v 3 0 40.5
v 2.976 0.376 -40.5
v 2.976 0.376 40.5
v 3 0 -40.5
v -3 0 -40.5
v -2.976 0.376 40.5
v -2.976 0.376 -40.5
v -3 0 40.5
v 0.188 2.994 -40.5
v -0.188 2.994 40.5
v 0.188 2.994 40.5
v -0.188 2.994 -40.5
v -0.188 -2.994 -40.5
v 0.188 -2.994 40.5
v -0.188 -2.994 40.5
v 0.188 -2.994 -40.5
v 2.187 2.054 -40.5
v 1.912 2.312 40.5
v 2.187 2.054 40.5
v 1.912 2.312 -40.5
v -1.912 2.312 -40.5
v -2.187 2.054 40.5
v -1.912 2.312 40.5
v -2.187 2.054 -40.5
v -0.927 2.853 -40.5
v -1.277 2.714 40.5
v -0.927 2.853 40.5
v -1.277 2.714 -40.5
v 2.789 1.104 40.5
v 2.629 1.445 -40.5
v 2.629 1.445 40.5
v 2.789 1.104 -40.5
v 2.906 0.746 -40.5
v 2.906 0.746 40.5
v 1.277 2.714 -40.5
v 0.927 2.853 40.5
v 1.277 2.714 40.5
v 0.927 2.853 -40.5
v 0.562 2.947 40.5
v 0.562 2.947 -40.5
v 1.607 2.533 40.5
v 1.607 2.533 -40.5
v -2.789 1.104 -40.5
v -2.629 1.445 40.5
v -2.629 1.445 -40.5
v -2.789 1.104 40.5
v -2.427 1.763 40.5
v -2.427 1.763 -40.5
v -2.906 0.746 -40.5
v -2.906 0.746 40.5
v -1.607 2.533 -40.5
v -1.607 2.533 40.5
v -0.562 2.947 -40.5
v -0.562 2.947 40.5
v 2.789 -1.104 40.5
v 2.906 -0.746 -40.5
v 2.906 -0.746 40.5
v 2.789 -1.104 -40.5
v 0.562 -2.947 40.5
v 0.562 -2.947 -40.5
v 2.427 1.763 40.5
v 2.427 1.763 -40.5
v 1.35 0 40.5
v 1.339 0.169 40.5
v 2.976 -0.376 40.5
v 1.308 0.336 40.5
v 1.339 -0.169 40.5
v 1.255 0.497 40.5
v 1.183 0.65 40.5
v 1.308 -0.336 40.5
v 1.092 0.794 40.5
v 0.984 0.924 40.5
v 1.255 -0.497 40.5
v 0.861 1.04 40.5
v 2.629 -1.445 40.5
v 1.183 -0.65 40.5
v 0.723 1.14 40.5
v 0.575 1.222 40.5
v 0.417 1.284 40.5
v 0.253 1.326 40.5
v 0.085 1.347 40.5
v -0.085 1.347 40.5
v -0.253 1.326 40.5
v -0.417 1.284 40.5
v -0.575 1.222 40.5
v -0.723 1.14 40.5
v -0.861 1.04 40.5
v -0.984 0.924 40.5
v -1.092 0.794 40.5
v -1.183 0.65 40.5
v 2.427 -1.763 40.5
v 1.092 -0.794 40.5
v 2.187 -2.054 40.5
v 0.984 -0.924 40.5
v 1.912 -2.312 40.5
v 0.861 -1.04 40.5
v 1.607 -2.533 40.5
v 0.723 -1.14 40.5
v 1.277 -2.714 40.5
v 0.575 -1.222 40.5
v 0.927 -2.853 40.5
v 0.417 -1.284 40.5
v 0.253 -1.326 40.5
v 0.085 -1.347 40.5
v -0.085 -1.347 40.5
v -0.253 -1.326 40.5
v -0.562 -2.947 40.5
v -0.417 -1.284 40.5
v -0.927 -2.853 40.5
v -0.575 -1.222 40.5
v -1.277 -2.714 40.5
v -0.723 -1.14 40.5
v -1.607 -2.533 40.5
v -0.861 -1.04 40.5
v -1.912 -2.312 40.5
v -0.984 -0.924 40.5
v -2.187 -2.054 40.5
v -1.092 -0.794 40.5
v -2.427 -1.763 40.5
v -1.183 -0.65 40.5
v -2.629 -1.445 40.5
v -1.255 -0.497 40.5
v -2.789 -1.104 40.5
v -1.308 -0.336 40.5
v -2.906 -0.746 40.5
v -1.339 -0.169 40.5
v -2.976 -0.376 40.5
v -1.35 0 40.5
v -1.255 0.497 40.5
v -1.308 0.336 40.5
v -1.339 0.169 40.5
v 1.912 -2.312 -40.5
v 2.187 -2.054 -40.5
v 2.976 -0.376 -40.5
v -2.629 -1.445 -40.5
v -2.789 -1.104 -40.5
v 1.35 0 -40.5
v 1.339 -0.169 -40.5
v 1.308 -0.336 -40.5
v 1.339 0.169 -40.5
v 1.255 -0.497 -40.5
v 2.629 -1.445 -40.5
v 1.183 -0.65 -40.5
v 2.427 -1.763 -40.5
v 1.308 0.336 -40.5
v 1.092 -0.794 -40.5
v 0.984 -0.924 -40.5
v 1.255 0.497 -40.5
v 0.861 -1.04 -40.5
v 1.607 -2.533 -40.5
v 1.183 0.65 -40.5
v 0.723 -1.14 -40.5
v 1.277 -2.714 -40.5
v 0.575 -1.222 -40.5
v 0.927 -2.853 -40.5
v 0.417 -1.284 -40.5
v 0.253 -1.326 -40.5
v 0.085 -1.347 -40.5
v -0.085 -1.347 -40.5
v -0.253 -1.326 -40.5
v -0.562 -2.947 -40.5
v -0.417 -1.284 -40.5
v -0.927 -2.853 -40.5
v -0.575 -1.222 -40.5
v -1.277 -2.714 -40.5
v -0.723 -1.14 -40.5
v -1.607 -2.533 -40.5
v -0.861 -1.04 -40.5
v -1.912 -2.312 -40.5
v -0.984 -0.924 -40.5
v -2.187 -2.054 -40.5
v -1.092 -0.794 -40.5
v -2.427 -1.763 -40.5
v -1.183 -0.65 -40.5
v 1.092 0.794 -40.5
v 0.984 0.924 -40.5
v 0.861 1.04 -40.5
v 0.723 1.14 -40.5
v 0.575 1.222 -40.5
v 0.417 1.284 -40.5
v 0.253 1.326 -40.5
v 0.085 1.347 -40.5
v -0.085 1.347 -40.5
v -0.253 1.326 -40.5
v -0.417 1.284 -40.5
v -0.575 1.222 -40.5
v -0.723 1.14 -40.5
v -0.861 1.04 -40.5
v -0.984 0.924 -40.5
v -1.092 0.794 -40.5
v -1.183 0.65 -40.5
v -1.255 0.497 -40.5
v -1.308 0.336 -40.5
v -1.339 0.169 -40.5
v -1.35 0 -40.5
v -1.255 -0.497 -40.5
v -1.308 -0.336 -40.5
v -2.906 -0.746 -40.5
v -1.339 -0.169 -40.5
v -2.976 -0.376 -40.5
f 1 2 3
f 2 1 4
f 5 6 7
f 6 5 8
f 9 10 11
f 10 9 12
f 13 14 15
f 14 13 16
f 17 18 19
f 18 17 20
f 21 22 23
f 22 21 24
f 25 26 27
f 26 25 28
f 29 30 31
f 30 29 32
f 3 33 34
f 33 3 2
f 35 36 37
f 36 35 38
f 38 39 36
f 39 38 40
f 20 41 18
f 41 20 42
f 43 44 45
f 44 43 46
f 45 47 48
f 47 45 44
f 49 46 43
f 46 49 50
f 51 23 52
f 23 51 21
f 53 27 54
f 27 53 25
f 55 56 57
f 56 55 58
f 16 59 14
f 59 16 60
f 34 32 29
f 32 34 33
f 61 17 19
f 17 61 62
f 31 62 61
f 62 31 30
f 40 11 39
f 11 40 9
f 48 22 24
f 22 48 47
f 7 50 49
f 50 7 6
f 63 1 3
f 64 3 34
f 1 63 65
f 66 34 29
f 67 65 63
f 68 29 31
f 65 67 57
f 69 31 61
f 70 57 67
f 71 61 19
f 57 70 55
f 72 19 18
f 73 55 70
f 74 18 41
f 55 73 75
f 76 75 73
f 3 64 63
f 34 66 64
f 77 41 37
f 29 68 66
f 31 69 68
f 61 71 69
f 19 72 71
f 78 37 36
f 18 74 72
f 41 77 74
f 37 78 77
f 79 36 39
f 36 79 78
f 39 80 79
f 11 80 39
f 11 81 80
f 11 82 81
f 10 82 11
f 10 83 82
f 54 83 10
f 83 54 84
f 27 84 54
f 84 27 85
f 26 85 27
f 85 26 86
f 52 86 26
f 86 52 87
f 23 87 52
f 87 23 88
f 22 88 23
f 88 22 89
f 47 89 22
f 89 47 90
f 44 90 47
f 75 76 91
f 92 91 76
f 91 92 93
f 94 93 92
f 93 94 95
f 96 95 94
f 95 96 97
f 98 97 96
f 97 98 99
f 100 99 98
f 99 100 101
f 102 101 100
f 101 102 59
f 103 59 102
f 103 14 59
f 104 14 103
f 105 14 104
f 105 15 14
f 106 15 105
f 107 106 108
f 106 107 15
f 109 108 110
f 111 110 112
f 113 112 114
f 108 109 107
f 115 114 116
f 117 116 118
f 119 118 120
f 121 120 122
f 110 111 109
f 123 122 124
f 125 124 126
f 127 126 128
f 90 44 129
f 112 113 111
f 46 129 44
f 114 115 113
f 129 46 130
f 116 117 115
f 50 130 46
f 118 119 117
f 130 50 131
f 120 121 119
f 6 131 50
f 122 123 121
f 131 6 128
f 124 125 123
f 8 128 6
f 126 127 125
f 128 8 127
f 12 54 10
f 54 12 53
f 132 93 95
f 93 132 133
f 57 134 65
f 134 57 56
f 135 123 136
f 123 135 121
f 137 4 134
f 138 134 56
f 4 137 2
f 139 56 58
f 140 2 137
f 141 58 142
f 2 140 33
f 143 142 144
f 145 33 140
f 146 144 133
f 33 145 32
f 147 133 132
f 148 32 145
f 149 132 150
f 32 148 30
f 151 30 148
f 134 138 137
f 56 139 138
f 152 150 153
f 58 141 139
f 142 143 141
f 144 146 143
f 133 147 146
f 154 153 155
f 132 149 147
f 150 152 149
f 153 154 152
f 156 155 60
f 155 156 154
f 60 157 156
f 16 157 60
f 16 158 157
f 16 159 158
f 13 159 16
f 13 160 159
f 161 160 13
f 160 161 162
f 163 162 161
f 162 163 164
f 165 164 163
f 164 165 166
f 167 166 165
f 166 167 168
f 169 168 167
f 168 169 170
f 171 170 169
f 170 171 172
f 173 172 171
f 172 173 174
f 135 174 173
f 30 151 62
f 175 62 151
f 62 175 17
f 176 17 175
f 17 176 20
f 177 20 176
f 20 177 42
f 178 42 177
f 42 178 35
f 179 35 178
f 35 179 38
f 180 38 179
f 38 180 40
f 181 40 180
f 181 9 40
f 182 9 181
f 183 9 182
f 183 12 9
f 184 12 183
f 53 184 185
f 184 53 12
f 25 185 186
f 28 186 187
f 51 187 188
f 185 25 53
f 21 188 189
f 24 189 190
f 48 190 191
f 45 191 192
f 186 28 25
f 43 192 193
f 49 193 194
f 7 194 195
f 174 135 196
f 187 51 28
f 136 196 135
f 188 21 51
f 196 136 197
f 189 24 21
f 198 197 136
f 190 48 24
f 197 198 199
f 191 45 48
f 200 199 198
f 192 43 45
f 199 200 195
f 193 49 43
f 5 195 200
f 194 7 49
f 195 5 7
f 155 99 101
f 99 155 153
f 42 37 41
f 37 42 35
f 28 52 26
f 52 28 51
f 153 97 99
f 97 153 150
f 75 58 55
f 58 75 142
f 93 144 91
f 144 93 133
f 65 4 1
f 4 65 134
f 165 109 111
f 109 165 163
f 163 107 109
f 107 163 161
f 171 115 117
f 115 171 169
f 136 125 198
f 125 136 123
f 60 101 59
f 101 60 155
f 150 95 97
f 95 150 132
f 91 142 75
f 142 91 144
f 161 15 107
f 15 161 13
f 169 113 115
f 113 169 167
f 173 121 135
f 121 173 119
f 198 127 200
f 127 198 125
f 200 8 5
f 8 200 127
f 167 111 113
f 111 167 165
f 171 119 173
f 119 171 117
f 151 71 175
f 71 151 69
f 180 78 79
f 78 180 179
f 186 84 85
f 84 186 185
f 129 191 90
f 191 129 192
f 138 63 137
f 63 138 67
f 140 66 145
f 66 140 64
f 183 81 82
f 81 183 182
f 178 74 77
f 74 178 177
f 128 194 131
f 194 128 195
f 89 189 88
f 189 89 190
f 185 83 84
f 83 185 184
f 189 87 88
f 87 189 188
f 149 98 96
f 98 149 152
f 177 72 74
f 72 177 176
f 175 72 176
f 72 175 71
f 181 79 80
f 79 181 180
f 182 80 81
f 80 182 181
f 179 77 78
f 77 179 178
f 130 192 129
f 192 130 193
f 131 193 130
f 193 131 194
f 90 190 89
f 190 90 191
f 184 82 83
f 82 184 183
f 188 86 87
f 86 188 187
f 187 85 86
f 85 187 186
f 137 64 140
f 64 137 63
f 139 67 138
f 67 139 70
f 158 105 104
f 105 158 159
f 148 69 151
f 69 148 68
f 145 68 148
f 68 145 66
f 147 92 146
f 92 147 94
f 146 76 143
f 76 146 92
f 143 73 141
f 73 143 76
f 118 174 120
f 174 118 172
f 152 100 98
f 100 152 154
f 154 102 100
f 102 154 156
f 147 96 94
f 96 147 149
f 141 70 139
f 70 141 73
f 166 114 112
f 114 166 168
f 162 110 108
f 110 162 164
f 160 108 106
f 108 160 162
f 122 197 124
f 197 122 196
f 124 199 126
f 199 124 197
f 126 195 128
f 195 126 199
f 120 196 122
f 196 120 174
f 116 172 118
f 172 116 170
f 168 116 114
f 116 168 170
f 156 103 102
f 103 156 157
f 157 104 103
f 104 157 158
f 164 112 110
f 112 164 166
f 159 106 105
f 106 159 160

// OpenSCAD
$fn = 50;


difference() {
	union() {
		translate(v = [0, 0, -40.5000000000]) {
			cylinder(h = 81, r = 3.0000000000);
		}
	}
	union() {
		translate(v = [0, 0, -100.0000000000]) {
			cylinder(h = 200, r = 1.3500000000);
		}
	}
}
